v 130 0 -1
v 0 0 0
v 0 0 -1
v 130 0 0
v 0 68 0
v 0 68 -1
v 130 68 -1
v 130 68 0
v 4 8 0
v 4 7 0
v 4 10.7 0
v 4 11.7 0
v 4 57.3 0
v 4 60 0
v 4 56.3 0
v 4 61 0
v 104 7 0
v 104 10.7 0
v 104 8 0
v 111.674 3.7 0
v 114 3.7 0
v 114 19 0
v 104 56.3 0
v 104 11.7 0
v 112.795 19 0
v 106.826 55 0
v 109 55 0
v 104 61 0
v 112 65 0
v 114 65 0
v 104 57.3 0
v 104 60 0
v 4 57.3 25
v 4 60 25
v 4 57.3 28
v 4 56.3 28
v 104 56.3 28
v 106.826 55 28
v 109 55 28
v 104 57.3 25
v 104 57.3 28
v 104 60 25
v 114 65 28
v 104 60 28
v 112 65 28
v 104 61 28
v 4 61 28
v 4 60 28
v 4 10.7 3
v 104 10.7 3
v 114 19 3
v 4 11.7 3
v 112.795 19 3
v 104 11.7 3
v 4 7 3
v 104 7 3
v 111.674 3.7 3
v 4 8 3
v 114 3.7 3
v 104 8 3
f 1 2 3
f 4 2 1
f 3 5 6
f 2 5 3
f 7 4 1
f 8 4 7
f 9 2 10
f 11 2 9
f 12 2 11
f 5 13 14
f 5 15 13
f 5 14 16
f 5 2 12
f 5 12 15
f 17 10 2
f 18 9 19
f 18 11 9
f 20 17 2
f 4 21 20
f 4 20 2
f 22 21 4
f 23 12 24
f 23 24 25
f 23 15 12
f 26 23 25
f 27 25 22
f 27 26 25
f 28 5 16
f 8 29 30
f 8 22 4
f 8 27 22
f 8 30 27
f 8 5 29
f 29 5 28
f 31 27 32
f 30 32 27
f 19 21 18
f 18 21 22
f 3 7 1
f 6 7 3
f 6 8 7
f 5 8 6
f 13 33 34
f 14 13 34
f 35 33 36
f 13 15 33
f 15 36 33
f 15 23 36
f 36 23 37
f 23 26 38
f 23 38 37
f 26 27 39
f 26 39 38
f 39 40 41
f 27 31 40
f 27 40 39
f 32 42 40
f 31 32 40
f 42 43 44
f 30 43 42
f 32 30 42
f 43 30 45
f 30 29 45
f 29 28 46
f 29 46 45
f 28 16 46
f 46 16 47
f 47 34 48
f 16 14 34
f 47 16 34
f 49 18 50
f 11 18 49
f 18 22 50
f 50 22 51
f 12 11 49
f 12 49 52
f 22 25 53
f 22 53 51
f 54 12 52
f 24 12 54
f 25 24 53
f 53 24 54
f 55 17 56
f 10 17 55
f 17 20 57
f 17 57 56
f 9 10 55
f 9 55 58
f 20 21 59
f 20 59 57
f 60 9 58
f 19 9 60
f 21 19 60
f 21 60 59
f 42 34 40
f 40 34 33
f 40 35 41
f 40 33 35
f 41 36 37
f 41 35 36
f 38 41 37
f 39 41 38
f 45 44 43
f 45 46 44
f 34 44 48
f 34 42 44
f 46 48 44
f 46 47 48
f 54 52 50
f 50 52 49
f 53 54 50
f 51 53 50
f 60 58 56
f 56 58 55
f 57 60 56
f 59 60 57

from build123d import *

# Parameters (mm, degrees)
SKETCH_W     = 130
SKETCH_H     = 68
PAD_DEPTH    = 1
SKETCH001_W  = 100
SKETCH001_H  = 1
PAD001_DEPTH = 3
SKETCH002_W  = 100
SKETCH002_H  = 1
PAD002_DEPTH = 3
PAD003_DEPTH = 3
SKETCH004_W  = 100
SKETCH004_H  = 1
PAD004_DEPTH = 28
SKETCH005_W  = 100
SKETCH005_H  = 1
PAD005_DEPTH = 28
PAD006_DEPTH = 28
SKETCH007_W  = 100
SKETCH007_H  = 2.7
PAD007_DEPTH = 25


with BuildPart() as part:
    # Sketch → Pad (new body)
    with BuildSketch(Plane.XY):
        with Locations((65, 34)):
            Rectangle(SKETCH_W, SKETCH_H)
    extrude(amount=-PAD_DEPTH)

    # Sketch001 → Pad001 (join)
    with BuildSketch(Plane.XY):
        with Locations((54, 7.5)):
            Rectangle(SKETCH001_W, SKETCH001_H)
    extrude(amount=PAD001_DEPTH)

    # Sketch002 → Pad002 (join)
    with BuildSketch(Plane.XY):
        with Locations((54, 11.2)):
            Rectangle(SKETCH002_W, SKETCH002_H)
    extrude(amount=PAD002_DEPTH)

    # Sketch003 → Pad003 (join)
    with BuildSketch(Plane.XY):
        Polygon((104, 10.7), (114, 19), (112.795181, 19), (104, 11.7), align=None)
        Polygon((104, 8), (114, 3.7), (111.674419, 3.7), (104, 7), align=None)
    extrude(amount=PAD003_DEPTH)

    # Sketch004 → Pad004 (join)
    with BuildSketch(Plane.XY):
        with Locations((54, 56.8)):
            Rectangle(SKETCH004_W, SKETCH004_H)
    extrude(amount=PAD004_DEPTH)

    # Sketch005 → Pad005 (join)
    with BuildSketch(Plane.XY):
        with Locations((54, 60.5)):
            Rectangle(SKETCH005_W, SKETCH005_H)
    extrude(amount=PAD005_DEPTH)

    # Sketch006 → Pad006 (join)
    with BuildSketch(Plane.XY):
        Polygon((104, 61), (112, 65), (114, 65), (104, 60), align=None)
        Polygon((104, 57.3), (109, 55), (106.826087, 55), (104, 56.3), align=None)
    extrude(amount=PAD006_DEPTH)

    # Sketch007 → Pad007 (join)
    with BuildSketch(Plane.XY):
        with Locations((54, 58.65)):
            Rectangle(SKETCH007_W, SKETCH007_H)
    extrude(amount=PAD007_DEPTH)


solid = part.part
